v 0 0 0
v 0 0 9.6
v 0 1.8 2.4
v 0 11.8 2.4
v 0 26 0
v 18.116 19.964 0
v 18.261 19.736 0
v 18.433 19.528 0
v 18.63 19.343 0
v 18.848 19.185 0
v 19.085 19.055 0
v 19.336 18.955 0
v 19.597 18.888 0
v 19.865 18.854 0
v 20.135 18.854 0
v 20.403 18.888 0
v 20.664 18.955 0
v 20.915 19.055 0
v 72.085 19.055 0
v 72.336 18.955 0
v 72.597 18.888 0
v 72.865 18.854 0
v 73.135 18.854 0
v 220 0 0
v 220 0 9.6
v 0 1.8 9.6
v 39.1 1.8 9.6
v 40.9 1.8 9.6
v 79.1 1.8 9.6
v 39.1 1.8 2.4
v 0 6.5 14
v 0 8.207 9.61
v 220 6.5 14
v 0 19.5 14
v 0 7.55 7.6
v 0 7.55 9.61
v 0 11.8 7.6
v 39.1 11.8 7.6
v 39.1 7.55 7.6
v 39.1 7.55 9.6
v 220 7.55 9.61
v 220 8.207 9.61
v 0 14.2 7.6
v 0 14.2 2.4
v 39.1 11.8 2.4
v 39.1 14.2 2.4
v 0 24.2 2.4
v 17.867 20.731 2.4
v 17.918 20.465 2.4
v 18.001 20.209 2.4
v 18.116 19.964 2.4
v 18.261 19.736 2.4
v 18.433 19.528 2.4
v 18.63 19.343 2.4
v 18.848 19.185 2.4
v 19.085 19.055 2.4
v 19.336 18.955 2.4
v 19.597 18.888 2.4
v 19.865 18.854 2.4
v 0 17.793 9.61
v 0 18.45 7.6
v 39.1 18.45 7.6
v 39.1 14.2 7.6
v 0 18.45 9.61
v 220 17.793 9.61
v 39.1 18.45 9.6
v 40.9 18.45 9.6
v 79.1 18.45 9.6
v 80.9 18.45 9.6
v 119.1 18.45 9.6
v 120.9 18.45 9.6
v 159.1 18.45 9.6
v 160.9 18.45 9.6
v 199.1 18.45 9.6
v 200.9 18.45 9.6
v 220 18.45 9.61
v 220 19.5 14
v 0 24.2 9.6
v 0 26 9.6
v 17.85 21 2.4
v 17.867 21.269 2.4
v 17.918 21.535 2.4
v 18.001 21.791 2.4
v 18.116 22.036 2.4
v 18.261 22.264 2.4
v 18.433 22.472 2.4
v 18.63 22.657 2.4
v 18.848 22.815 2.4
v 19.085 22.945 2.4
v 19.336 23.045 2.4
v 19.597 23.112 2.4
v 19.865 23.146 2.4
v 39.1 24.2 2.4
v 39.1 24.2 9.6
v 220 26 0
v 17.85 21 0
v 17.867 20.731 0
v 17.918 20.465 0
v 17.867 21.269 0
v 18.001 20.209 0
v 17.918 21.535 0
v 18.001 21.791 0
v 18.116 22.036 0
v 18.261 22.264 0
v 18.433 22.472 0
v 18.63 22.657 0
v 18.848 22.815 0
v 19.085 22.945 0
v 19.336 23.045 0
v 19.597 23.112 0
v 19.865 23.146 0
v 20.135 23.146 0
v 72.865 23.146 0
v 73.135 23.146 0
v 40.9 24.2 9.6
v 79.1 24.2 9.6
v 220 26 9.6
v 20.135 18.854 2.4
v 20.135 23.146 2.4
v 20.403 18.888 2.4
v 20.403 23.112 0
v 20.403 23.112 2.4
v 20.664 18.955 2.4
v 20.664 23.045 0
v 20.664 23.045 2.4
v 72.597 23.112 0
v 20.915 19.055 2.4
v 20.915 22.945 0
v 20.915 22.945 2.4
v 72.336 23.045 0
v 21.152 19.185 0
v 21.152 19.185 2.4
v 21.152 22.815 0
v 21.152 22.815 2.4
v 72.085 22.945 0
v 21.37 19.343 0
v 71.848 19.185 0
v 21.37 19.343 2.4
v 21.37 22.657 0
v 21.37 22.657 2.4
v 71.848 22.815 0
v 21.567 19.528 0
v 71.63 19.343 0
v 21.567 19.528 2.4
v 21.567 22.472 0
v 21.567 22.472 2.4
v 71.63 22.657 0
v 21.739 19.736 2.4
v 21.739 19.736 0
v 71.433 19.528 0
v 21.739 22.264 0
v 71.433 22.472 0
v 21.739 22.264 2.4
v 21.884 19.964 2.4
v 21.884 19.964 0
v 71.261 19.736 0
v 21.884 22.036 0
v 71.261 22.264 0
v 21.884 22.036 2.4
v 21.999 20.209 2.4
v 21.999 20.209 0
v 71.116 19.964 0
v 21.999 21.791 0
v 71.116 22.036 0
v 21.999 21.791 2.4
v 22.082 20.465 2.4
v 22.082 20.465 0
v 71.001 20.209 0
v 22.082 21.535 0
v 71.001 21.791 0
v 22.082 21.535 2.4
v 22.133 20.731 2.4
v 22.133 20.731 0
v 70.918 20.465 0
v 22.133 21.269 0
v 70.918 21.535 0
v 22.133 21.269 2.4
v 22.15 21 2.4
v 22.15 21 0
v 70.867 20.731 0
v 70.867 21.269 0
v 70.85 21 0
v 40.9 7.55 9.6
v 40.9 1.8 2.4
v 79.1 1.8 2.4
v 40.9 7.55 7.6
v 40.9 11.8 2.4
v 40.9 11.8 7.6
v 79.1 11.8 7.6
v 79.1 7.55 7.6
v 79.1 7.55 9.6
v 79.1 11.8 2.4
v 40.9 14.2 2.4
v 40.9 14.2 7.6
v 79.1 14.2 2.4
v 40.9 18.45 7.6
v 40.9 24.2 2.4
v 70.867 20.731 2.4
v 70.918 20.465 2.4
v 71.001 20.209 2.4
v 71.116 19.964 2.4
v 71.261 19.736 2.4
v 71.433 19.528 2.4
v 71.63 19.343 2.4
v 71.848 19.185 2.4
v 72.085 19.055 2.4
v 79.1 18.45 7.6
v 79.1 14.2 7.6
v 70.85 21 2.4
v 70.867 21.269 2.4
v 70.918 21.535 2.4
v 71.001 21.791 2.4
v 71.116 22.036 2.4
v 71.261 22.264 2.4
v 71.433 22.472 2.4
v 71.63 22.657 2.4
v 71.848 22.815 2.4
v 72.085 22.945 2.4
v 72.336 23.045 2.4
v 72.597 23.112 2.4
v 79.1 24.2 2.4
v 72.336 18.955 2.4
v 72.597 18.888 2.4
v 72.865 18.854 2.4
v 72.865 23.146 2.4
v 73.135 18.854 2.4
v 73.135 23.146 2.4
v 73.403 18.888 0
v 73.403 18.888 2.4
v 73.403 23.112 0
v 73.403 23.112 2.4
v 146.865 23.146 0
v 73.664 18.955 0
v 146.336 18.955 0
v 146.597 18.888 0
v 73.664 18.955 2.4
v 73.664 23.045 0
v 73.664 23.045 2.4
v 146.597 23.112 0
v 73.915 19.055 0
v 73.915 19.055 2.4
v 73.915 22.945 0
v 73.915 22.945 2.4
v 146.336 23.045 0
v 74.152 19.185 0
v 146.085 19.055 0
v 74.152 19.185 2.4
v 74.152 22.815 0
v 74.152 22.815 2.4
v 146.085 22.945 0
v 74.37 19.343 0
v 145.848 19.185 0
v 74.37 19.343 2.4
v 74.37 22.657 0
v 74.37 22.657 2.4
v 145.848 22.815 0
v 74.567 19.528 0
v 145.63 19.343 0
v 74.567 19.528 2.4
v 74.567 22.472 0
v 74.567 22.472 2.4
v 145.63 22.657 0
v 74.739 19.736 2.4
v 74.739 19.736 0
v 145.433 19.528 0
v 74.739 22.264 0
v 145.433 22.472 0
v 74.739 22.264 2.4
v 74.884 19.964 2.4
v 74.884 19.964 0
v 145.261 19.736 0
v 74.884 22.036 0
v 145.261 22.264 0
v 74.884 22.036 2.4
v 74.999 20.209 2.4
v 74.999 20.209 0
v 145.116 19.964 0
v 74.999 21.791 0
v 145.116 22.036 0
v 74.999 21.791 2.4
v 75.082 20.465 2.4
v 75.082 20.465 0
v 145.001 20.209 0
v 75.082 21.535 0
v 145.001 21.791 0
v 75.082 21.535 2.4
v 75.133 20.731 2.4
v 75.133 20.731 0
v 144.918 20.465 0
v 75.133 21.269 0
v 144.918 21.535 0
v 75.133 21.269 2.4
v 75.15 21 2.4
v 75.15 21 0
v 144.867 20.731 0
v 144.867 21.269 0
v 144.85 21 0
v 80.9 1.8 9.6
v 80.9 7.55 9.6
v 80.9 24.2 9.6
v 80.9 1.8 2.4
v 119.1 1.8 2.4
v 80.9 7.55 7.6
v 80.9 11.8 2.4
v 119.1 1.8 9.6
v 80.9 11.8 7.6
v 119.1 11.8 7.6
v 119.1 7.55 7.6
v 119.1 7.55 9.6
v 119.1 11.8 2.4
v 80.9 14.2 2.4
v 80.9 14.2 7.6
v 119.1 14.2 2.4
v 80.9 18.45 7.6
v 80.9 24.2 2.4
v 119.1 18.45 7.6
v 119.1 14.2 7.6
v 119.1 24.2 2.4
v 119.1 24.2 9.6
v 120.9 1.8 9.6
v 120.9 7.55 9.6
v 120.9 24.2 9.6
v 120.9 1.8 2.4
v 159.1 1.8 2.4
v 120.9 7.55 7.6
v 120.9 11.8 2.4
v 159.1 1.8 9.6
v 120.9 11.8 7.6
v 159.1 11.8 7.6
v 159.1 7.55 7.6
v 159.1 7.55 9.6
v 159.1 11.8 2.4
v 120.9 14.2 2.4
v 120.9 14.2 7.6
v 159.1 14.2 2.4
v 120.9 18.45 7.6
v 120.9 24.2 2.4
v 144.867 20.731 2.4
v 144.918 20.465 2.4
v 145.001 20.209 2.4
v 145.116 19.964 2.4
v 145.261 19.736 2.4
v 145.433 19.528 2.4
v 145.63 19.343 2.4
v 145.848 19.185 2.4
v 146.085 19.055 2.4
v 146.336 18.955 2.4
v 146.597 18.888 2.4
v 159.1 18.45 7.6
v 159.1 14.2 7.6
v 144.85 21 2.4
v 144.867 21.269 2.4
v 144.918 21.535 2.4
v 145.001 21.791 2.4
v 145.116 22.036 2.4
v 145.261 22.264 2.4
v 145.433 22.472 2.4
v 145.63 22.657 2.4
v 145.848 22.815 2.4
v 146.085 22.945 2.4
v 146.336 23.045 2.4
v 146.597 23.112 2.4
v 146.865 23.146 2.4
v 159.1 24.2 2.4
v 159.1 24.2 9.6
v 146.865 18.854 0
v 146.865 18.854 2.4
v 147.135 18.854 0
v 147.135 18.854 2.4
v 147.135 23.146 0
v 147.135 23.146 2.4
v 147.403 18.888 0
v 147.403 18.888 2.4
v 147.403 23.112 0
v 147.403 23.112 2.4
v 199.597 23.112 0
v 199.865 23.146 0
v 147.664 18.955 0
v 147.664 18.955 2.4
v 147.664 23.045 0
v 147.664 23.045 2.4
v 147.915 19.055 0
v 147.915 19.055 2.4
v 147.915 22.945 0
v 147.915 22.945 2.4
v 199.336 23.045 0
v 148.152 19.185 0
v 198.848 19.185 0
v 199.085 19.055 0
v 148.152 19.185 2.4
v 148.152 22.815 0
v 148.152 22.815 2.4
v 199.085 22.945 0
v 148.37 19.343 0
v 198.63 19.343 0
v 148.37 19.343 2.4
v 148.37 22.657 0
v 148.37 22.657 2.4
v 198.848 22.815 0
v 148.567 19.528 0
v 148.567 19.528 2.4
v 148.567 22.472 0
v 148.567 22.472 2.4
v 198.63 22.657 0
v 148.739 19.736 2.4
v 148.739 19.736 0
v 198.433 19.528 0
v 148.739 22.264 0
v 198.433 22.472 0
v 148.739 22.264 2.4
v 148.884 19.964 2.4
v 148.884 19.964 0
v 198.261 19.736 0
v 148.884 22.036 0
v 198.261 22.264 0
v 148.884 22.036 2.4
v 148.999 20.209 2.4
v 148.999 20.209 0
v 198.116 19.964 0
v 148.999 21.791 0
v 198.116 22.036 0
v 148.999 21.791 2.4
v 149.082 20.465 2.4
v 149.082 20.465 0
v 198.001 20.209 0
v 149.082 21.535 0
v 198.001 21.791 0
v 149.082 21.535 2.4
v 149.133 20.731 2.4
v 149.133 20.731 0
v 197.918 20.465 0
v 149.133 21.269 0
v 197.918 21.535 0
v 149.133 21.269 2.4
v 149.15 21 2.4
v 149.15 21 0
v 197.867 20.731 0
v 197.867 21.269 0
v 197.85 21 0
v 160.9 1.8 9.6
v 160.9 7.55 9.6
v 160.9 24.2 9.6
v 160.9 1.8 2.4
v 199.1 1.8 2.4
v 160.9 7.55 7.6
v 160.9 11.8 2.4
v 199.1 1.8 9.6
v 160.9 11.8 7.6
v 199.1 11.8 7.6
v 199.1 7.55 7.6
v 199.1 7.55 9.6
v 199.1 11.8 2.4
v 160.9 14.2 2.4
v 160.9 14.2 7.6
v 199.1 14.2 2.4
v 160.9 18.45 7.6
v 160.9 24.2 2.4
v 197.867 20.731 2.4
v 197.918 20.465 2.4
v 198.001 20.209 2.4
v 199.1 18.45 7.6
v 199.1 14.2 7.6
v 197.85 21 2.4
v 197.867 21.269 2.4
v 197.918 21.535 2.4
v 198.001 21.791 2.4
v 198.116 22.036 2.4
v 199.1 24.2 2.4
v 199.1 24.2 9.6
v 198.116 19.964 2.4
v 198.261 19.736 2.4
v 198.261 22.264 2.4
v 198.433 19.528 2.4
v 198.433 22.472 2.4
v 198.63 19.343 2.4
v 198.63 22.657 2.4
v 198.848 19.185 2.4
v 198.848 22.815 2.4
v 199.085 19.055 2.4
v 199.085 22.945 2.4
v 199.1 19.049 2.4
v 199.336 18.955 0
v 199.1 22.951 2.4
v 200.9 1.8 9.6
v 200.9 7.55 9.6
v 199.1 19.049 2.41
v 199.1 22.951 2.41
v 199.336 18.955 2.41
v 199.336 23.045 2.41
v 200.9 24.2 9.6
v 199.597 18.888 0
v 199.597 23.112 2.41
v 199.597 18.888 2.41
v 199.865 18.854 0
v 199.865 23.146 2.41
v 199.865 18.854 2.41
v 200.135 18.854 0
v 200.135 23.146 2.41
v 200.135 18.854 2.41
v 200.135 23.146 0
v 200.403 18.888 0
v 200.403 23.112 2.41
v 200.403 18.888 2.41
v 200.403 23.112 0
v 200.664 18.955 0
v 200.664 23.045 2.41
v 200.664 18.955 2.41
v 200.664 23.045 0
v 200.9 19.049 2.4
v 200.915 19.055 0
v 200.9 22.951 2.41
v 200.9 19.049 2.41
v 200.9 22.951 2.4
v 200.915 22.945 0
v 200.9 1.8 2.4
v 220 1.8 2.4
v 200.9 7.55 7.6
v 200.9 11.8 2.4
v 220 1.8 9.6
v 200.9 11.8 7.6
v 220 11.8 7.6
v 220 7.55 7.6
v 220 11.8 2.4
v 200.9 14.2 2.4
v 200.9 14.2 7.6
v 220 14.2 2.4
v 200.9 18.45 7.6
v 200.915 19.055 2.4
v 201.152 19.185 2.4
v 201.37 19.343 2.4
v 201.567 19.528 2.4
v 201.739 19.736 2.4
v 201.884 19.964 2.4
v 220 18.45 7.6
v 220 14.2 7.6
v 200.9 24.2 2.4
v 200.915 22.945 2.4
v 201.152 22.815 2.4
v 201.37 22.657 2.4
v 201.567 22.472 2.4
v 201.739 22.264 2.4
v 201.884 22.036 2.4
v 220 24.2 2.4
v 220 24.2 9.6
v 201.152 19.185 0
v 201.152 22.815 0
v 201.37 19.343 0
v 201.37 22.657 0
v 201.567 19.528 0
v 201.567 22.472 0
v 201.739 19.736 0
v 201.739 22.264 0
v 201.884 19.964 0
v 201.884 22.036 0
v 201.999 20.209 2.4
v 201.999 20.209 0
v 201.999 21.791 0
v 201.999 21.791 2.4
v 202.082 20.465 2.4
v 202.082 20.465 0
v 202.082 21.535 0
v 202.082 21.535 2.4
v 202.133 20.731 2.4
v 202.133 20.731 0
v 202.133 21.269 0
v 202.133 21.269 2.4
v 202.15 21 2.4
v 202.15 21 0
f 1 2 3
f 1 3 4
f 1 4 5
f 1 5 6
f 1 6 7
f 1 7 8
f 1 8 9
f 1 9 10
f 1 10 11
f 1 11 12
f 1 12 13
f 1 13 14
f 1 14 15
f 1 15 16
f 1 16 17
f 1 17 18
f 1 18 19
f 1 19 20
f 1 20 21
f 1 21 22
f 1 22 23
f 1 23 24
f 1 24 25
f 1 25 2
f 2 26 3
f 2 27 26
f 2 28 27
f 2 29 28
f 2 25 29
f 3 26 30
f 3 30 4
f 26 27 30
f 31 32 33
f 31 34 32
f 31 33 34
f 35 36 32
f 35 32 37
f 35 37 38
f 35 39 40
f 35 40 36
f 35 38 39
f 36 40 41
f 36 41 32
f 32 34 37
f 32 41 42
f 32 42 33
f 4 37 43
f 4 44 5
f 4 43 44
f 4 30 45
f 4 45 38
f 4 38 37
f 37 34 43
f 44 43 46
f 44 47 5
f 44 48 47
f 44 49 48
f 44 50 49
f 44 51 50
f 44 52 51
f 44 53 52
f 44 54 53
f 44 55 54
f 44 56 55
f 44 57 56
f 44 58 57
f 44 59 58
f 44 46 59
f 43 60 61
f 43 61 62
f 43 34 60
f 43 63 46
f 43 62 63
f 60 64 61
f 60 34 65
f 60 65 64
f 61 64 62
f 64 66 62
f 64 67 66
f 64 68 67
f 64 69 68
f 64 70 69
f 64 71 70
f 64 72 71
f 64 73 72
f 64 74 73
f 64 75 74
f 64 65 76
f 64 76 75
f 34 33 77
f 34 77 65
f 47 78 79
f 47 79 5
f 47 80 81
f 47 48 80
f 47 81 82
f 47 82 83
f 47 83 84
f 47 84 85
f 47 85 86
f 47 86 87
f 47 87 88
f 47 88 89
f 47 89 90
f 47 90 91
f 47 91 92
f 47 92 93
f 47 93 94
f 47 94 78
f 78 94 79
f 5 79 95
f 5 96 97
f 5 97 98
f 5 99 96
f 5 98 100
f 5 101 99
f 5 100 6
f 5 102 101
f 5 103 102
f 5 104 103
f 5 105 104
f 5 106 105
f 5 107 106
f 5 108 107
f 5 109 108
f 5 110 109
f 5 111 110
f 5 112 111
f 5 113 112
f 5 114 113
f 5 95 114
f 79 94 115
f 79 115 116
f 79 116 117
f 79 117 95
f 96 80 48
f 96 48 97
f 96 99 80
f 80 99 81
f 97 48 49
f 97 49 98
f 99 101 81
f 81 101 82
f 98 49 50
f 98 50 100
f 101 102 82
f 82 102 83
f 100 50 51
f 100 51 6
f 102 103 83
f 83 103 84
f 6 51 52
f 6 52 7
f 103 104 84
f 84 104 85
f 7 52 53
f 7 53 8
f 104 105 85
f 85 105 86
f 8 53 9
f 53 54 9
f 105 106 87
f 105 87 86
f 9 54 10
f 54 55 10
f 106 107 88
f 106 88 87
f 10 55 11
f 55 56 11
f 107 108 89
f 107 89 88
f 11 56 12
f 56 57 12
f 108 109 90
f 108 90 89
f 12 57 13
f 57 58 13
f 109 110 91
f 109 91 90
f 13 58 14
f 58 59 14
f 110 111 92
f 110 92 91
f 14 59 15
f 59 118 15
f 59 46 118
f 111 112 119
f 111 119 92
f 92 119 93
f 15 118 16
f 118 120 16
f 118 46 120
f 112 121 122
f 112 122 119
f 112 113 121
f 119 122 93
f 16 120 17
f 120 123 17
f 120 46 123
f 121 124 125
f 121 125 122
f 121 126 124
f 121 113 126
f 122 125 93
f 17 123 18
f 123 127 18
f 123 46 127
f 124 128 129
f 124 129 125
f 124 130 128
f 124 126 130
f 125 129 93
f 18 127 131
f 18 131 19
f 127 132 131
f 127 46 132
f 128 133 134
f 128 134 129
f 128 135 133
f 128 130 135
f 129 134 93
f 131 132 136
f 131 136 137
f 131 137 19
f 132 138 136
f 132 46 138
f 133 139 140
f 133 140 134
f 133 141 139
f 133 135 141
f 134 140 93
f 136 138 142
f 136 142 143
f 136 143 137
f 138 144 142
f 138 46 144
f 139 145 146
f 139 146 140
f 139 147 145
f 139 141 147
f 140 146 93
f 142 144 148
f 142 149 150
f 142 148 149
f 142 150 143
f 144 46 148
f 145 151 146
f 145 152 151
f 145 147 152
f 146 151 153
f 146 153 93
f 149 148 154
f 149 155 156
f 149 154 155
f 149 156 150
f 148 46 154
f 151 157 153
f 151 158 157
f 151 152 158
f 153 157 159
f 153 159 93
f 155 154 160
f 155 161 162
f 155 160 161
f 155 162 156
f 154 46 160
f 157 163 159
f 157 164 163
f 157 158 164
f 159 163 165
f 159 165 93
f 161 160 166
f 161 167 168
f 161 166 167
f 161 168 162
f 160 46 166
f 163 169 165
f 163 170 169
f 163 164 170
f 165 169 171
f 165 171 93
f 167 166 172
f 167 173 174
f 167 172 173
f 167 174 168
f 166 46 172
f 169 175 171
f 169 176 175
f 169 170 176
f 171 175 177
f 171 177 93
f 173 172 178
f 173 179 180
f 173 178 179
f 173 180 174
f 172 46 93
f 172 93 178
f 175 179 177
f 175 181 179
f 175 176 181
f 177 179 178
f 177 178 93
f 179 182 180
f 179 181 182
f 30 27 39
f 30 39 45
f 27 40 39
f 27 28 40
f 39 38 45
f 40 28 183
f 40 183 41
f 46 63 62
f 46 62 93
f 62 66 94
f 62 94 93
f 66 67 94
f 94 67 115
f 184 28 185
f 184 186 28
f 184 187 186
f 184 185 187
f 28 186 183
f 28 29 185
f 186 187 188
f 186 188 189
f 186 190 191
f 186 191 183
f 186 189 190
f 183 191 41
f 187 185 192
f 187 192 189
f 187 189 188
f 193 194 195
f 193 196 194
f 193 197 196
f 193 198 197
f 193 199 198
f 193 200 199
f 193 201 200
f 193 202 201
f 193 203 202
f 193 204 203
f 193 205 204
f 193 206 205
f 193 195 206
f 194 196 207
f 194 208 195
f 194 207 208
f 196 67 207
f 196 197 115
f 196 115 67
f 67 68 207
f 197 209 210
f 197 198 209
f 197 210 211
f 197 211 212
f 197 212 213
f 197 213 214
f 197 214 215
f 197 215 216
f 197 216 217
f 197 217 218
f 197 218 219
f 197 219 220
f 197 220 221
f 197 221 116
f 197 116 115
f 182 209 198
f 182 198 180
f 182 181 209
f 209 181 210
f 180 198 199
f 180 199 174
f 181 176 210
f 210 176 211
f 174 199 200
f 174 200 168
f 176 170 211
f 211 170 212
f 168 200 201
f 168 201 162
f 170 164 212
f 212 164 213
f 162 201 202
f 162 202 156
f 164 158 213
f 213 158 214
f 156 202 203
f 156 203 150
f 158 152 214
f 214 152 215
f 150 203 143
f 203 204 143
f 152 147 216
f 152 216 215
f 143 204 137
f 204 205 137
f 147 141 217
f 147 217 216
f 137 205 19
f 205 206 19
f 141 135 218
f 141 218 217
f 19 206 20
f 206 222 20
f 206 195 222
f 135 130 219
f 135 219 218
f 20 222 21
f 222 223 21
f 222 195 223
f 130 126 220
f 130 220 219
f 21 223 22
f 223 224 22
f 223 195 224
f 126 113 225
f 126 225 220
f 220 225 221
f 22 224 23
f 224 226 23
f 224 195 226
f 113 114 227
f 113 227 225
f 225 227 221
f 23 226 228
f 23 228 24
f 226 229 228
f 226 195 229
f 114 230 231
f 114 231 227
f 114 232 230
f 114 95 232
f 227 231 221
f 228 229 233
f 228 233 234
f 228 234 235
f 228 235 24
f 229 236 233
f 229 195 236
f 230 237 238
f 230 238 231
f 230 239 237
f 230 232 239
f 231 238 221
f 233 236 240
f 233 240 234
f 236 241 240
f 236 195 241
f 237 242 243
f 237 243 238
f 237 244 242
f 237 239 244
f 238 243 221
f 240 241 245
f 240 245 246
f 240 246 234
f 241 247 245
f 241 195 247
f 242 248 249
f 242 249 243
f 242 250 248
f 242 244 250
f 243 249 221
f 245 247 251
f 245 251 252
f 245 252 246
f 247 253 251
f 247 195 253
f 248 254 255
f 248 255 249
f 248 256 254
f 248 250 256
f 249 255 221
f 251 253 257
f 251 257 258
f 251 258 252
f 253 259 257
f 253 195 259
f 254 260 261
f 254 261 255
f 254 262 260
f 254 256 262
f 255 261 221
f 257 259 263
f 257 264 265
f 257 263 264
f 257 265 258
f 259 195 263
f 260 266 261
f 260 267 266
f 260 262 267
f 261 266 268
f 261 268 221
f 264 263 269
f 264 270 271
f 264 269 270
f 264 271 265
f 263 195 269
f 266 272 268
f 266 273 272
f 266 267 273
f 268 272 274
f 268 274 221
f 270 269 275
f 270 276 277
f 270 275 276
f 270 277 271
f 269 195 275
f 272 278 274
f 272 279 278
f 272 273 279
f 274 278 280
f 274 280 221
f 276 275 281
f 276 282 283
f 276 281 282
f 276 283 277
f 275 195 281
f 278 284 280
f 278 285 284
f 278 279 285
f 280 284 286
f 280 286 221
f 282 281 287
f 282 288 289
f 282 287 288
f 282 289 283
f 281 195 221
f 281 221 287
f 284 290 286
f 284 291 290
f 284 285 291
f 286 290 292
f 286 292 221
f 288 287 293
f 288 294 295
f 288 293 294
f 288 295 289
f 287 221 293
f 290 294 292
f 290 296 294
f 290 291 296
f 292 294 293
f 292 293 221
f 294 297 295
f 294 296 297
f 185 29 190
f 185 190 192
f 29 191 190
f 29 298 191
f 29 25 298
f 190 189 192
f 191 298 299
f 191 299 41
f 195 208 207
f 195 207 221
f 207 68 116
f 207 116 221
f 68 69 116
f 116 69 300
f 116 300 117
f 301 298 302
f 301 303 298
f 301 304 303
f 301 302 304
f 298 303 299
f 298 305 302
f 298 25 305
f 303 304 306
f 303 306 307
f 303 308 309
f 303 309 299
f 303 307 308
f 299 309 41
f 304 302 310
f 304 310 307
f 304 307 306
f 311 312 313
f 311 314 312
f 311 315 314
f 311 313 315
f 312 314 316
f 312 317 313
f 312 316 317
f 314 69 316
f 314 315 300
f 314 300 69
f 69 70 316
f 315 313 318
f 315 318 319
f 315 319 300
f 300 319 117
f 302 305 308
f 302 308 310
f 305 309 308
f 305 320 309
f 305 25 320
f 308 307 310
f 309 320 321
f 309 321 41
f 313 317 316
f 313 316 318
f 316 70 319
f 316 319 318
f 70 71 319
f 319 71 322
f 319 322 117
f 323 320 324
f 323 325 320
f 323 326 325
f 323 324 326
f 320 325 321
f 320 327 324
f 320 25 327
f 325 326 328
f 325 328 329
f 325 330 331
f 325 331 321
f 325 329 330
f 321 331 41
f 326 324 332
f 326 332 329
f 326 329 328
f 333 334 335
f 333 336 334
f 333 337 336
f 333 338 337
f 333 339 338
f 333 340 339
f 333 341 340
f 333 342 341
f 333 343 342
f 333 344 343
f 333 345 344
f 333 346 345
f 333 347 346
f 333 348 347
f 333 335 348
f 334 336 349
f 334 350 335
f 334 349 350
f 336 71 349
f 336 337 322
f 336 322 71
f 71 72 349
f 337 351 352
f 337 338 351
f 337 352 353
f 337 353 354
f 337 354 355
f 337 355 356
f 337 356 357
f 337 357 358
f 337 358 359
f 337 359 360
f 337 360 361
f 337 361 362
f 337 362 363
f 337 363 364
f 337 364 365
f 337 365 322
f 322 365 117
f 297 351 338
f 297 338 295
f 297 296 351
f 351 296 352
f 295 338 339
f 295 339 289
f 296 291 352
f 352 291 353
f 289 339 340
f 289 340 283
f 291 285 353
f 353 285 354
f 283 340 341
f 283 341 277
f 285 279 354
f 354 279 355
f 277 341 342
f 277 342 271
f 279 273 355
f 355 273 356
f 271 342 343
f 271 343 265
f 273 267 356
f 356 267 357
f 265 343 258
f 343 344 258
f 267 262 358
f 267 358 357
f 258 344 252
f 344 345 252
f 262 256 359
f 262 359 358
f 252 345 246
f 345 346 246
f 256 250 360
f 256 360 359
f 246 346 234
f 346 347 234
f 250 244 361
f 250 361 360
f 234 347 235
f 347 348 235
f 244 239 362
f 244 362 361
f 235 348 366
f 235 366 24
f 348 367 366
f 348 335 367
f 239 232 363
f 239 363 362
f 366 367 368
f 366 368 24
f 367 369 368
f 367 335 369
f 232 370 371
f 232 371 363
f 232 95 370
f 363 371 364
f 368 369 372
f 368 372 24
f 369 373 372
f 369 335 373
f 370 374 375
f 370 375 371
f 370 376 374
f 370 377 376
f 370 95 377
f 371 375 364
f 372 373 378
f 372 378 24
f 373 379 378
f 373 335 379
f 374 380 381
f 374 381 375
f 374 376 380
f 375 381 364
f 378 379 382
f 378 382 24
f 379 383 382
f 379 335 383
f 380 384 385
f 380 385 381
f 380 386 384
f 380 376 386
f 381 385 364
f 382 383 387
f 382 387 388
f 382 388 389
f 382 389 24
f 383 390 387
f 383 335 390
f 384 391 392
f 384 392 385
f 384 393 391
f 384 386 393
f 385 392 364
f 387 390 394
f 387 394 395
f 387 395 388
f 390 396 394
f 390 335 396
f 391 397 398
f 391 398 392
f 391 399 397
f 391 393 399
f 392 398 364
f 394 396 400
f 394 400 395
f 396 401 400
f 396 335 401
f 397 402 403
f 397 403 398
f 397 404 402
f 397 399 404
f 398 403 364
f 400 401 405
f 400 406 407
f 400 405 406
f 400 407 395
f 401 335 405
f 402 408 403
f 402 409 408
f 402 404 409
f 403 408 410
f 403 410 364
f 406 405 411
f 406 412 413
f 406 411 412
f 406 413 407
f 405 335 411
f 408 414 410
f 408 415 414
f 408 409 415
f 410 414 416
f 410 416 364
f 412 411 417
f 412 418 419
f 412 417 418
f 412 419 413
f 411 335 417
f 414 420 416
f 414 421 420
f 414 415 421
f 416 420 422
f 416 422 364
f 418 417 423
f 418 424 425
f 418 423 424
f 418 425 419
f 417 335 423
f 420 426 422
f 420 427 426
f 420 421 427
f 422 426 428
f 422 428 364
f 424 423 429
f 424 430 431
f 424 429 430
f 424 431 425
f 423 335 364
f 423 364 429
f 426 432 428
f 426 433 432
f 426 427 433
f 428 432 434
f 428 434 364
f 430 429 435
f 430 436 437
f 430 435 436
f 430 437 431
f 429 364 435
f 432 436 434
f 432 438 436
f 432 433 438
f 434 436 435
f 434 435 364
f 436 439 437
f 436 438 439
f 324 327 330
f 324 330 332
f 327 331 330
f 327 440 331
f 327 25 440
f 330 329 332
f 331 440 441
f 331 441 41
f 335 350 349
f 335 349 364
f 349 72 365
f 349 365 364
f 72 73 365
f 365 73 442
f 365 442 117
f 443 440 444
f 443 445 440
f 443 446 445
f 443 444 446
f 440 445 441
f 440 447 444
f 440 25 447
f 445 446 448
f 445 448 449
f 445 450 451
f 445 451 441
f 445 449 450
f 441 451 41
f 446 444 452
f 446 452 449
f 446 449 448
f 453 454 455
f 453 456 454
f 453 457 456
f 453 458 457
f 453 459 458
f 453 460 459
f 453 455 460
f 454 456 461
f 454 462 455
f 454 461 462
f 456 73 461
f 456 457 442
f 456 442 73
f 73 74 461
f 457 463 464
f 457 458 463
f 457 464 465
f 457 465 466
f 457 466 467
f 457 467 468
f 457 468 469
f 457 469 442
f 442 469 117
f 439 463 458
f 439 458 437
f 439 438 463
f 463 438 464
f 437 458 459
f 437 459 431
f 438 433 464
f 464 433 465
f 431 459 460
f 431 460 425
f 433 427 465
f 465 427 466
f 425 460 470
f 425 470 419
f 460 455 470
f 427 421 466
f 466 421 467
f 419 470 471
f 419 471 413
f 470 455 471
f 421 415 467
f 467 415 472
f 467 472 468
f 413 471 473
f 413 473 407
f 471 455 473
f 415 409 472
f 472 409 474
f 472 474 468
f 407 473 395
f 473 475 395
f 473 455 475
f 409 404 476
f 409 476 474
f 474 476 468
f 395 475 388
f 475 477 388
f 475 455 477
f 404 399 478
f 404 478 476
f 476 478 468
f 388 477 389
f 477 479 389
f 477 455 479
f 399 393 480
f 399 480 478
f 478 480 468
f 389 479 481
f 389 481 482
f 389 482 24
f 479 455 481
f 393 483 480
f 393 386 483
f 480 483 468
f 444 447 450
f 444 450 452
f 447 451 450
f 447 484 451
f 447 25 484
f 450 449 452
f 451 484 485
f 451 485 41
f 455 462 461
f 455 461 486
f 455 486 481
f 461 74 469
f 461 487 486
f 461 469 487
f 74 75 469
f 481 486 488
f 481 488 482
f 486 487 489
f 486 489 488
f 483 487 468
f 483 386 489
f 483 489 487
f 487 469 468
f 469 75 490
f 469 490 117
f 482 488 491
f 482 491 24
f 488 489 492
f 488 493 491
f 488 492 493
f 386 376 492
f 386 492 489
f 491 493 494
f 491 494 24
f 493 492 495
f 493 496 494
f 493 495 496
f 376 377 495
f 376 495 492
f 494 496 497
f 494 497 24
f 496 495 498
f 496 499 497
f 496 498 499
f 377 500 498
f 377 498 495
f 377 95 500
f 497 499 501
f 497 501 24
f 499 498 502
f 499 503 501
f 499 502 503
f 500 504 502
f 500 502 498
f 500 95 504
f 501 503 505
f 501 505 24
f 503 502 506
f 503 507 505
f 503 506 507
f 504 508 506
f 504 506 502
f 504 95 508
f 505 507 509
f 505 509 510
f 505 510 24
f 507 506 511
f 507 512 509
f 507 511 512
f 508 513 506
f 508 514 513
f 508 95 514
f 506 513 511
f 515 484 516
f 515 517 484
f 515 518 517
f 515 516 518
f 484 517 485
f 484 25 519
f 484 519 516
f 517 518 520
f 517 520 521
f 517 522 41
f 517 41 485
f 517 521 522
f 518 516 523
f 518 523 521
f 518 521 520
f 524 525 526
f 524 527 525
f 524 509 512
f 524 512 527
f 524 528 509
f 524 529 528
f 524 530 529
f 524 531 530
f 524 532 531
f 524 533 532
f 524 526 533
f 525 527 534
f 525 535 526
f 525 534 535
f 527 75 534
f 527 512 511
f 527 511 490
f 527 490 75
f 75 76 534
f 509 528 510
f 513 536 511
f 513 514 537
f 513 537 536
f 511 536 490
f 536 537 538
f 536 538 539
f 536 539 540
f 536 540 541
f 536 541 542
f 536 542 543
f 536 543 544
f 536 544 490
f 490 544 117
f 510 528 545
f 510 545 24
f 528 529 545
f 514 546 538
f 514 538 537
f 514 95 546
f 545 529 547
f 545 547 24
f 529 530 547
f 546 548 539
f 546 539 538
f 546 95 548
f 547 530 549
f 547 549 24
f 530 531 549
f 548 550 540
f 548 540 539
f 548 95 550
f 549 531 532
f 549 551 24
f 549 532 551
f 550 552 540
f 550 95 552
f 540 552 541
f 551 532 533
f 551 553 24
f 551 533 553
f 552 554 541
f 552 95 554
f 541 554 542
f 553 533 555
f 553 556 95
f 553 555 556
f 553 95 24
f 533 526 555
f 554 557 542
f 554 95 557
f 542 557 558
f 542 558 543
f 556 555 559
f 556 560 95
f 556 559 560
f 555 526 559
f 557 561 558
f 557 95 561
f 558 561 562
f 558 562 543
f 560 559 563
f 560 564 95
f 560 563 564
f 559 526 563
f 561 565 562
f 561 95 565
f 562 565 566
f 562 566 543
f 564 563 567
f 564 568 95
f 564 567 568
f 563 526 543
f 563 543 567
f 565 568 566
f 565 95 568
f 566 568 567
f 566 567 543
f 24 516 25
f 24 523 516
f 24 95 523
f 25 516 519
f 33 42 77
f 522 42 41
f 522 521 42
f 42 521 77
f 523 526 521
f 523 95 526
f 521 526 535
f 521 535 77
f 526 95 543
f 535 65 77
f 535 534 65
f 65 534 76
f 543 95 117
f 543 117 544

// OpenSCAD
// file: 01_Base_Trilho_X.scad
/*
  Trilho X dianteiro/motriz.
  Perfil aberto nervurado: rigido onde importa, sem preencher o volume inteiro.
  Imprimir em PLA, fundo plano no leito, brim de 5 mm.
*/

include <00_Parametros.scad>;

module base_trilho_x(length=x_rail_length, include_rack=true) {
  dt_y = base_w/2;
  rib_w = wall_structural;
  skin_top = base_h-0.4;
  dt_platform_w = dovetail_width_bottom + 1.4;
  rack_platform_w = rack_width + 1.2;

  difference() {
    union() {
      // Piso, duas longarinas laterais e alma central.
      cube([length,base_w,floor_h]);
      cube([length,wall_thin,skin_top]);
      translate([0,base_w-wall_thin,0]) cube([length,wall_thin,skin_top]);
      translate([0,dt_y-rib_w/2,0]) cube([length,rib_w,skin_top]);

      // Mesas locais sob as superficies funcionais.
      translate([0,dt_y-dt_platform_w/2,skin_top-2.0])
        cube([length,dt_platform_w,2.0+EPS]);

      if (include_rack) {
        translate([0,x_rack_center_y-rib_w/2,0])
          cube([length,rib_w,skin_top]);
        translate([0,x_rack_center_y-rack_platform_w/2,skin_top-2.0])
          cube([length,rack_platform_w,2.0+EPS]);
      }

      // Diafragmas de torcao; espacamento de 40 mm.
      for (cx=[40:40:length-20])
        translate([cx-wall_thin/2,wall_thin,floor_h-EPS])
          cube([wall_thin,base_w-2*wall_thin,skin_top-floor_h+EPS]);

      translate([0,dt_y,base_h-0.5]) dovetail_male_x(length);
      if (include_rack)
        translate([0,x_rack_center_y,base_h]) rack_x(length);
    }

    // Quatro pontos evitam que o trilho longo arqueie sobre a base de MDF.
    for (fx=[20,73,147,length-20])
      translate([fx,base_w-5,-EPS]) cylinder(r=2.15,h=floor_h+2*EPS);
  }
}

module trilho_x_motriz() base_trilho_x(include_rack=true);
module trilho_x_passivo() base_trilho_x(include_rack=false);

trilho_x_motriz();
// main file
/* Trilho X traseiro/passivo, sem motor e sem cremalheira. */
include <00_Parametros.scad>;
use <01_Base_Trilho_X.scad>;

trilho_x_passivo();
